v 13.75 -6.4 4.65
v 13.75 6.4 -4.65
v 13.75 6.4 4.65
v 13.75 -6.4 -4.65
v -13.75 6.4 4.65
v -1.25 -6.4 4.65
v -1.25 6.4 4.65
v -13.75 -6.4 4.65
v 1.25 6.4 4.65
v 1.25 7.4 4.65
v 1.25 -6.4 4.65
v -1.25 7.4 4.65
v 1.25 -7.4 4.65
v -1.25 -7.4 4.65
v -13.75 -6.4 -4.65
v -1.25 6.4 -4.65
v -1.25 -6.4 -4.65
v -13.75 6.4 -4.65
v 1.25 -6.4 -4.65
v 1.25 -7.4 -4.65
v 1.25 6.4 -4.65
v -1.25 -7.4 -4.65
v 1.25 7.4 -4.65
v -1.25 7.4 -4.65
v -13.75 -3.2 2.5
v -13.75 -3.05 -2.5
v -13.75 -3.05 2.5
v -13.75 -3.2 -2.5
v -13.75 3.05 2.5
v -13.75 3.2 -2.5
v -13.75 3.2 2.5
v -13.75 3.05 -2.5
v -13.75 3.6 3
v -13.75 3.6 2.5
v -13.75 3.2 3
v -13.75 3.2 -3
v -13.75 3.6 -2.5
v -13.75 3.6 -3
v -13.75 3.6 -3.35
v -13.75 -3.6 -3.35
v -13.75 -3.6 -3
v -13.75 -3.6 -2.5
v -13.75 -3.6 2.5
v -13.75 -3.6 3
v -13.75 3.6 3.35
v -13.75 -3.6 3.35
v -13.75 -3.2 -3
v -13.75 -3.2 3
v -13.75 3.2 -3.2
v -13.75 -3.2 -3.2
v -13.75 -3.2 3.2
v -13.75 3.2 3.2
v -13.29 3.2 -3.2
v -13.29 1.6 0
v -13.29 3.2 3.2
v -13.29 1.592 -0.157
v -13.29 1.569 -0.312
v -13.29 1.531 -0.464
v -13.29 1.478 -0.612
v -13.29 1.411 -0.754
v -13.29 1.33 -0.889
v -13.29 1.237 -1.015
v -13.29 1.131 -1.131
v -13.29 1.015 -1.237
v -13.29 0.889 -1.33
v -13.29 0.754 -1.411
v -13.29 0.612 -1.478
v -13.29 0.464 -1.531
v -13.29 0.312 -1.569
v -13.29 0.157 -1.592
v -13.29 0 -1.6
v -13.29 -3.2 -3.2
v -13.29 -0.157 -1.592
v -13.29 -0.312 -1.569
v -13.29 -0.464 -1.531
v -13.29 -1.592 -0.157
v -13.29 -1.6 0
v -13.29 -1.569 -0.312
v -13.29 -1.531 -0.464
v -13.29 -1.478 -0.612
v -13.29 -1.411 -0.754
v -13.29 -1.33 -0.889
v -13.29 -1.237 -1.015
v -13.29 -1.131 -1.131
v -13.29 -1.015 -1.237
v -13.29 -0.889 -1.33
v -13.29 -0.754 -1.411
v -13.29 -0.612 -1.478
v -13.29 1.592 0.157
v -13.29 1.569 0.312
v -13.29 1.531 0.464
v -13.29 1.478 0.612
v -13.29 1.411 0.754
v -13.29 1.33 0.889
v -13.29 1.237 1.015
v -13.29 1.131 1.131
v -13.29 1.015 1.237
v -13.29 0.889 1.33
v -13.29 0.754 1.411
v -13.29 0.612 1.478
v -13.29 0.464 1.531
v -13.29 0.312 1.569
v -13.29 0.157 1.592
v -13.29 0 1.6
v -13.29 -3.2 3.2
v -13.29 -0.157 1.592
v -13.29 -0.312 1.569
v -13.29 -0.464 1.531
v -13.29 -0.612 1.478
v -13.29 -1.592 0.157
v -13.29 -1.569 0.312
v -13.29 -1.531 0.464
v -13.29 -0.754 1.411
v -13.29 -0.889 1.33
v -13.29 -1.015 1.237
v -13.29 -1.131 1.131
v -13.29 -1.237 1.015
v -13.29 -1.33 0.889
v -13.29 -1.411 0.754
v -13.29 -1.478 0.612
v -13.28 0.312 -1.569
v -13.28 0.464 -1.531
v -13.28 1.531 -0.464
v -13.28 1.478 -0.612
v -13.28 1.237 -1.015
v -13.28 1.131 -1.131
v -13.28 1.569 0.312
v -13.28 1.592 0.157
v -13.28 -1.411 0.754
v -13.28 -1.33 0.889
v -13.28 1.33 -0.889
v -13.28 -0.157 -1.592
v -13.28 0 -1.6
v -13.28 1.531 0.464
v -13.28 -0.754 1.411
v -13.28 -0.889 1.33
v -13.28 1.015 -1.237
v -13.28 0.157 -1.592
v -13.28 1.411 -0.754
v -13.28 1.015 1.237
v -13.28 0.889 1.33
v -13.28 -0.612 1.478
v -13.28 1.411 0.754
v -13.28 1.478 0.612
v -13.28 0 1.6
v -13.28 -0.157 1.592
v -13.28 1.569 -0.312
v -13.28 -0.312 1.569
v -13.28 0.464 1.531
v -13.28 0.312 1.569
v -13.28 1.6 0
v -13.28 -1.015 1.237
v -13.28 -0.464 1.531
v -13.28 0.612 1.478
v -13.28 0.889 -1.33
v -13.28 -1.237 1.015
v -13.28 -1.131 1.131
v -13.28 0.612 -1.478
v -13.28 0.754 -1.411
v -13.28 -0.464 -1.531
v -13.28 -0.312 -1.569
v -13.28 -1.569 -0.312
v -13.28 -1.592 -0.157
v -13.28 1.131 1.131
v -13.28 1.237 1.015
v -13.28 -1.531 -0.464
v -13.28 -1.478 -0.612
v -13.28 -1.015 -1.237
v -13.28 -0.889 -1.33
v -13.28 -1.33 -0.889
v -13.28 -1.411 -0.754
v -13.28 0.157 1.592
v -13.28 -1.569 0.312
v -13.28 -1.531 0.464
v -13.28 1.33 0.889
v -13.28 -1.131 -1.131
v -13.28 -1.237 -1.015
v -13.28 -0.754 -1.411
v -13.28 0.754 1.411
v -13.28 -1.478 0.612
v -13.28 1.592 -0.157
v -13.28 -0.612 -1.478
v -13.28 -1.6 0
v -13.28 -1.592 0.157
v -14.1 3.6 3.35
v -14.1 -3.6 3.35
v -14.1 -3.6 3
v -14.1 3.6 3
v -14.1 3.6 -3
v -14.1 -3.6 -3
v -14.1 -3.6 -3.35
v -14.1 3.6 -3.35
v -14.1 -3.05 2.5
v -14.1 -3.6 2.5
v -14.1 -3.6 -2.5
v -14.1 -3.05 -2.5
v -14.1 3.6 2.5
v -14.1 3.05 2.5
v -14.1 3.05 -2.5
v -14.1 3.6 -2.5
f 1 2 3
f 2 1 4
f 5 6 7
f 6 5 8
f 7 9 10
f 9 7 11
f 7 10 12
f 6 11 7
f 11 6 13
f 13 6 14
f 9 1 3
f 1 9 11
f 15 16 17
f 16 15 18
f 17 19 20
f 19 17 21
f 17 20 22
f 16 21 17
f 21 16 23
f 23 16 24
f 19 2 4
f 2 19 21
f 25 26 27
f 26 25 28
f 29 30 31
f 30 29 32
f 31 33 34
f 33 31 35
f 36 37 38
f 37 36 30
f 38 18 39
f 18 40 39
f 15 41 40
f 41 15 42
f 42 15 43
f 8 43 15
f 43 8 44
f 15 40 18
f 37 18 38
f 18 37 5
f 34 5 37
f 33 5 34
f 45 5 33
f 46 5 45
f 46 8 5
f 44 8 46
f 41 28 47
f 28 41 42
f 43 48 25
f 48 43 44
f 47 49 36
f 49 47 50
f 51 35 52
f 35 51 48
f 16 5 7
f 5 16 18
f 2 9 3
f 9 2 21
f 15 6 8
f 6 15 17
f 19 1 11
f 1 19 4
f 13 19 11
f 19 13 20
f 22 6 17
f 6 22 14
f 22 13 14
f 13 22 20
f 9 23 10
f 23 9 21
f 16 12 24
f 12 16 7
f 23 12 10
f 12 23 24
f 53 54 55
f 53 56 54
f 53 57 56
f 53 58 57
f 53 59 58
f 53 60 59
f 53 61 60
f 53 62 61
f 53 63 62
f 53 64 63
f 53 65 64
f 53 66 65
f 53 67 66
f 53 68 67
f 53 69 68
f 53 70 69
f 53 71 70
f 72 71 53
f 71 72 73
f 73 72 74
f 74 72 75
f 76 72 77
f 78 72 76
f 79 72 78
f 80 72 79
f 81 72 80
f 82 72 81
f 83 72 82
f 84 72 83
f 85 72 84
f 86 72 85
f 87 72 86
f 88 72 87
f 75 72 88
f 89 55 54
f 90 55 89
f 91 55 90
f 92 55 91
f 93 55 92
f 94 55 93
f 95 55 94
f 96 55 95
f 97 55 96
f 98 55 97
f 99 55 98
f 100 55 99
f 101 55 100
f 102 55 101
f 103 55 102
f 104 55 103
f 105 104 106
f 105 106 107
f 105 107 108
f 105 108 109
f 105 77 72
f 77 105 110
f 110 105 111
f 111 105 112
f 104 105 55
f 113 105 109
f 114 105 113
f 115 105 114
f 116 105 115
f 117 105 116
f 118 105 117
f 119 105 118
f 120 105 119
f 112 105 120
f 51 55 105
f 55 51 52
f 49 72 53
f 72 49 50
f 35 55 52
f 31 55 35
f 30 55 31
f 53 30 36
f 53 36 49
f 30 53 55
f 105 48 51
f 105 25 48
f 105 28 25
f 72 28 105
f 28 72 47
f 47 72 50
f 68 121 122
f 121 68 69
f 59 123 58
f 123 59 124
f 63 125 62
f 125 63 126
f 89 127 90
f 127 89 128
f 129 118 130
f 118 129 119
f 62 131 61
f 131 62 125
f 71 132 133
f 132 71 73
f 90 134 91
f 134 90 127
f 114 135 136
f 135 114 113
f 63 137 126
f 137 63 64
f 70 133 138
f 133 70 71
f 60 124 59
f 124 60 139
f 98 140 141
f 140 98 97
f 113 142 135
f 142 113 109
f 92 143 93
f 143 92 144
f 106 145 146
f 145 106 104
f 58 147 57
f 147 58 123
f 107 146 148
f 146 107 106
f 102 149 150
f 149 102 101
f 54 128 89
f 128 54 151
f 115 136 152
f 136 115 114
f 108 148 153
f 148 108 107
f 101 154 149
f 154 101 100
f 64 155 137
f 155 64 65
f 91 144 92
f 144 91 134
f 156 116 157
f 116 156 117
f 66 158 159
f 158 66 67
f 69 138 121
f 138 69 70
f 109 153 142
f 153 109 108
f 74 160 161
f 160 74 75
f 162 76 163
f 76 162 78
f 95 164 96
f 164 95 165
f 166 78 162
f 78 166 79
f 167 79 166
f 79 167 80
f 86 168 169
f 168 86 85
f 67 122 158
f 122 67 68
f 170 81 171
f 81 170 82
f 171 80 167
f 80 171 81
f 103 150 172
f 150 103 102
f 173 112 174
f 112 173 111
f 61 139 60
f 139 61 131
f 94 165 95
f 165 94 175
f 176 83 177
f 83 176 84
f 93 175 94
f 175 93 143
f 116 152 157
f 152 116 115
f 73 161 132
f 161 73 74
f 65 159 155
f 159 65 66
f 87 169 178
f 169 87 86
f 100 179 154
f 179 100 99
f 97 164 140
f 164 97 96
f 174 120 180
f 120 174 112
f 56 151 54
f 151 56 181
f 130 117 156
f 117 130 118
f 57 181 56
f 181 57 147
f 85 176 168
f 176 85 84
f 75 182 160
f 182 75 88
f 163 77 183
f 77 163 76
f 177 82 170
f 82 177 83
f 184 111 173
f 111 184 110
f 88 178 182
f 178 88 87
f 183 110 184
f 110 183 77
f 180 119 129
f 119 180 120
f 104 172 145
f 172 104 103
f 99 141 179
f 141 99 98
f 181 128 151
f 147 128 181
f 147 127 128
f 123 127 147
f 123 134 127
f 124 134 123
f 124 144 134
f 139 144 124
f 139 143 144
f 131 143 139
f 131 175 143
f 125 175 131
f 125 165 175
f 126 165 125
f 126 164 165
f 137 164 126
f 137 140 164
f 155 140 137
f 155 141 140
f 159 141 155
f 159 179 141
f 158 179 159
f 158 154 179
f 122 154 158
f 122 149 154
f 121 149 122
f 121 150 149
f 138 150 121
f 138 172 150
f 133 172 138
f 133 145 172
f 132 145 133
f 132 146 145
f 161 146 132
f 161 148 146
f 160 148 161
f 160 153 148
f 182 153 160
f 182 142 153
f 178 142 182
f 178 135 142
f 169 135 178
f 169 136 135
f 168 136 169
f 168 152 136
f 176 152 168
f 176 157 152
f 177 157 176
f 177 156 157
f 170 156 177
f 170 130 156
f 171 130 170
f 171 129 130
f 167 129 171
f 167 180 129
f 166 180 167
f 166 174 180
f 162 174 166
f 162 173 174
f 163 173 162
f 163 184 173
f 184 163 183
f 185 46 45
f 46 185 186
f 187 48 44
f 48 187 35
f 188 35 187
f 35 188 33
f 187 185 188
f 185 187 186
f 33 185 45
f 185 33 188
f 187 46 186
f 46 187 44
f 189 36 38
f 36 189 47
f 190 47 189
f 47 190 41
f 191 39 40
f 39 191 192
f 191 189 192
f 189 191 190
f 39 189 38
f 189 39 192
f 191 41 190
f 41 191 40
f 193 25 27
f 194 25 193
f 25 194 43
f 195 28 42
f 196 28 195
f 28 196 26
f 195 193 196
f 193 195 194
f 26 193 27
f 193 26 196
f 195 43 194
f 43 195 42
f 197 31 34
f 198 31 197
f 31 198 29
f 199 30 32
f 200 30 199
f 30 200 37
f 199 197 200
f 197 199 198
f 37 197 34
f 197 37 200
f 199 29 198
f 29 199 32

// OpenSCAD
/*
    SC Fiber Connector Adapter Mock - centered side flange version

    Orientation:
    X = length/front-to-back
    Y = width/side-to-side
    Z = height/top-bottom

    Corrected interpretation:
    - Main body is 27.5 long x 12.8 wide x 9.3 high.
    - The wider flange is side-only: no top or bottom flange.
    - Flange is centered along the length of the adapter, not placed at one end.
    - Overall width across side flanges is 14.8.
    - Side protrusion is therefore 1.0 mm per side.
*/

$fn = 64;

// --------------------
// Main dimensions, mm
// --------------------
sc_l = 27.5;
sc_w = 12.8;
sc_h = 9.3;

flange_total_w = 14.8;
flange_t = 2.5;              // thickness along X
flange_x_center = sc_l / 2;  // centered flange location

side_flange_each = (flange_total_w - sc_w) / 2;

// Visual-only front detail
front_detail_depth = 0.45;
front_opening_d = 3.2;
front_inner_square = 6.4;

module sc_connector_mock(center=true, show_front_detail=true) {
    translate(center ? [-sc_l/2, -sc_w/2, -sc_h/2] : [0,0,0]) {
        difference() {
            union() {
                // Main rectangular adapter body
                cube([sc_l, sc_w, sc_h]);

                // Centered left side flange only
                translate([flange_x_center - flange_t/2, -side_flange_each, 0])
                    cube([flange_t, side_flange_each, sc_h]);

                // Centered right side flange only
                translate([flange_x_center - flange_t/2, sc_w, 0])
                    cube([flange_t, side_flange_each, sc_h]);
            }

            if (show_front_detail) {
                // Shallow square recess on the front face, visual only
                translate([-0.01, (sc_w - front_inner_square)/2, (sc_h - front_inner_square)/2])
                    cube([front_detail_depth + 0.02, front_inner_square, front_inner_square]);

                // Center round connector opening, visual only
                translate([-0.02, sc_w/2, sc_h/2])
                    rotate([0,90,0])
                        cylinder(d=front_opening_d, h=front_detail_depth + 0.04);
            }
        }

        if (show_front_detail) {
            ridge_depth = 0.35;
            front_ridge_w = 0.55;
            front_ridge_h = 0.35;

            // Raised visual ridges on front face
            translate([-ridge_depth, (sc_w - 7.2)/2, sc_h/2 + 3.0])
                cube([ridge_depth, 7.2, front_ridge_h]);

            translate([-ridge_depth, (sc_w - 7.2)/2, sc_h/2 - 3.35])
                cube([ridge_depth, 7.2, front_ridge_h]);

            translate([-ridge_depth, sc_w/2 - 3.6, sc_h/2 - 2.5])
                cube([ridge_depth, front_ridge_w, 5.0]);

            translate([-ridge_depth, sc_w/2 + 3.05, sc_h/2 - 2.5])
                cube([ridge_depth, front_ridge_w, 5.0]);
        }
    }
}

// Preview
sc_connector_mock();
